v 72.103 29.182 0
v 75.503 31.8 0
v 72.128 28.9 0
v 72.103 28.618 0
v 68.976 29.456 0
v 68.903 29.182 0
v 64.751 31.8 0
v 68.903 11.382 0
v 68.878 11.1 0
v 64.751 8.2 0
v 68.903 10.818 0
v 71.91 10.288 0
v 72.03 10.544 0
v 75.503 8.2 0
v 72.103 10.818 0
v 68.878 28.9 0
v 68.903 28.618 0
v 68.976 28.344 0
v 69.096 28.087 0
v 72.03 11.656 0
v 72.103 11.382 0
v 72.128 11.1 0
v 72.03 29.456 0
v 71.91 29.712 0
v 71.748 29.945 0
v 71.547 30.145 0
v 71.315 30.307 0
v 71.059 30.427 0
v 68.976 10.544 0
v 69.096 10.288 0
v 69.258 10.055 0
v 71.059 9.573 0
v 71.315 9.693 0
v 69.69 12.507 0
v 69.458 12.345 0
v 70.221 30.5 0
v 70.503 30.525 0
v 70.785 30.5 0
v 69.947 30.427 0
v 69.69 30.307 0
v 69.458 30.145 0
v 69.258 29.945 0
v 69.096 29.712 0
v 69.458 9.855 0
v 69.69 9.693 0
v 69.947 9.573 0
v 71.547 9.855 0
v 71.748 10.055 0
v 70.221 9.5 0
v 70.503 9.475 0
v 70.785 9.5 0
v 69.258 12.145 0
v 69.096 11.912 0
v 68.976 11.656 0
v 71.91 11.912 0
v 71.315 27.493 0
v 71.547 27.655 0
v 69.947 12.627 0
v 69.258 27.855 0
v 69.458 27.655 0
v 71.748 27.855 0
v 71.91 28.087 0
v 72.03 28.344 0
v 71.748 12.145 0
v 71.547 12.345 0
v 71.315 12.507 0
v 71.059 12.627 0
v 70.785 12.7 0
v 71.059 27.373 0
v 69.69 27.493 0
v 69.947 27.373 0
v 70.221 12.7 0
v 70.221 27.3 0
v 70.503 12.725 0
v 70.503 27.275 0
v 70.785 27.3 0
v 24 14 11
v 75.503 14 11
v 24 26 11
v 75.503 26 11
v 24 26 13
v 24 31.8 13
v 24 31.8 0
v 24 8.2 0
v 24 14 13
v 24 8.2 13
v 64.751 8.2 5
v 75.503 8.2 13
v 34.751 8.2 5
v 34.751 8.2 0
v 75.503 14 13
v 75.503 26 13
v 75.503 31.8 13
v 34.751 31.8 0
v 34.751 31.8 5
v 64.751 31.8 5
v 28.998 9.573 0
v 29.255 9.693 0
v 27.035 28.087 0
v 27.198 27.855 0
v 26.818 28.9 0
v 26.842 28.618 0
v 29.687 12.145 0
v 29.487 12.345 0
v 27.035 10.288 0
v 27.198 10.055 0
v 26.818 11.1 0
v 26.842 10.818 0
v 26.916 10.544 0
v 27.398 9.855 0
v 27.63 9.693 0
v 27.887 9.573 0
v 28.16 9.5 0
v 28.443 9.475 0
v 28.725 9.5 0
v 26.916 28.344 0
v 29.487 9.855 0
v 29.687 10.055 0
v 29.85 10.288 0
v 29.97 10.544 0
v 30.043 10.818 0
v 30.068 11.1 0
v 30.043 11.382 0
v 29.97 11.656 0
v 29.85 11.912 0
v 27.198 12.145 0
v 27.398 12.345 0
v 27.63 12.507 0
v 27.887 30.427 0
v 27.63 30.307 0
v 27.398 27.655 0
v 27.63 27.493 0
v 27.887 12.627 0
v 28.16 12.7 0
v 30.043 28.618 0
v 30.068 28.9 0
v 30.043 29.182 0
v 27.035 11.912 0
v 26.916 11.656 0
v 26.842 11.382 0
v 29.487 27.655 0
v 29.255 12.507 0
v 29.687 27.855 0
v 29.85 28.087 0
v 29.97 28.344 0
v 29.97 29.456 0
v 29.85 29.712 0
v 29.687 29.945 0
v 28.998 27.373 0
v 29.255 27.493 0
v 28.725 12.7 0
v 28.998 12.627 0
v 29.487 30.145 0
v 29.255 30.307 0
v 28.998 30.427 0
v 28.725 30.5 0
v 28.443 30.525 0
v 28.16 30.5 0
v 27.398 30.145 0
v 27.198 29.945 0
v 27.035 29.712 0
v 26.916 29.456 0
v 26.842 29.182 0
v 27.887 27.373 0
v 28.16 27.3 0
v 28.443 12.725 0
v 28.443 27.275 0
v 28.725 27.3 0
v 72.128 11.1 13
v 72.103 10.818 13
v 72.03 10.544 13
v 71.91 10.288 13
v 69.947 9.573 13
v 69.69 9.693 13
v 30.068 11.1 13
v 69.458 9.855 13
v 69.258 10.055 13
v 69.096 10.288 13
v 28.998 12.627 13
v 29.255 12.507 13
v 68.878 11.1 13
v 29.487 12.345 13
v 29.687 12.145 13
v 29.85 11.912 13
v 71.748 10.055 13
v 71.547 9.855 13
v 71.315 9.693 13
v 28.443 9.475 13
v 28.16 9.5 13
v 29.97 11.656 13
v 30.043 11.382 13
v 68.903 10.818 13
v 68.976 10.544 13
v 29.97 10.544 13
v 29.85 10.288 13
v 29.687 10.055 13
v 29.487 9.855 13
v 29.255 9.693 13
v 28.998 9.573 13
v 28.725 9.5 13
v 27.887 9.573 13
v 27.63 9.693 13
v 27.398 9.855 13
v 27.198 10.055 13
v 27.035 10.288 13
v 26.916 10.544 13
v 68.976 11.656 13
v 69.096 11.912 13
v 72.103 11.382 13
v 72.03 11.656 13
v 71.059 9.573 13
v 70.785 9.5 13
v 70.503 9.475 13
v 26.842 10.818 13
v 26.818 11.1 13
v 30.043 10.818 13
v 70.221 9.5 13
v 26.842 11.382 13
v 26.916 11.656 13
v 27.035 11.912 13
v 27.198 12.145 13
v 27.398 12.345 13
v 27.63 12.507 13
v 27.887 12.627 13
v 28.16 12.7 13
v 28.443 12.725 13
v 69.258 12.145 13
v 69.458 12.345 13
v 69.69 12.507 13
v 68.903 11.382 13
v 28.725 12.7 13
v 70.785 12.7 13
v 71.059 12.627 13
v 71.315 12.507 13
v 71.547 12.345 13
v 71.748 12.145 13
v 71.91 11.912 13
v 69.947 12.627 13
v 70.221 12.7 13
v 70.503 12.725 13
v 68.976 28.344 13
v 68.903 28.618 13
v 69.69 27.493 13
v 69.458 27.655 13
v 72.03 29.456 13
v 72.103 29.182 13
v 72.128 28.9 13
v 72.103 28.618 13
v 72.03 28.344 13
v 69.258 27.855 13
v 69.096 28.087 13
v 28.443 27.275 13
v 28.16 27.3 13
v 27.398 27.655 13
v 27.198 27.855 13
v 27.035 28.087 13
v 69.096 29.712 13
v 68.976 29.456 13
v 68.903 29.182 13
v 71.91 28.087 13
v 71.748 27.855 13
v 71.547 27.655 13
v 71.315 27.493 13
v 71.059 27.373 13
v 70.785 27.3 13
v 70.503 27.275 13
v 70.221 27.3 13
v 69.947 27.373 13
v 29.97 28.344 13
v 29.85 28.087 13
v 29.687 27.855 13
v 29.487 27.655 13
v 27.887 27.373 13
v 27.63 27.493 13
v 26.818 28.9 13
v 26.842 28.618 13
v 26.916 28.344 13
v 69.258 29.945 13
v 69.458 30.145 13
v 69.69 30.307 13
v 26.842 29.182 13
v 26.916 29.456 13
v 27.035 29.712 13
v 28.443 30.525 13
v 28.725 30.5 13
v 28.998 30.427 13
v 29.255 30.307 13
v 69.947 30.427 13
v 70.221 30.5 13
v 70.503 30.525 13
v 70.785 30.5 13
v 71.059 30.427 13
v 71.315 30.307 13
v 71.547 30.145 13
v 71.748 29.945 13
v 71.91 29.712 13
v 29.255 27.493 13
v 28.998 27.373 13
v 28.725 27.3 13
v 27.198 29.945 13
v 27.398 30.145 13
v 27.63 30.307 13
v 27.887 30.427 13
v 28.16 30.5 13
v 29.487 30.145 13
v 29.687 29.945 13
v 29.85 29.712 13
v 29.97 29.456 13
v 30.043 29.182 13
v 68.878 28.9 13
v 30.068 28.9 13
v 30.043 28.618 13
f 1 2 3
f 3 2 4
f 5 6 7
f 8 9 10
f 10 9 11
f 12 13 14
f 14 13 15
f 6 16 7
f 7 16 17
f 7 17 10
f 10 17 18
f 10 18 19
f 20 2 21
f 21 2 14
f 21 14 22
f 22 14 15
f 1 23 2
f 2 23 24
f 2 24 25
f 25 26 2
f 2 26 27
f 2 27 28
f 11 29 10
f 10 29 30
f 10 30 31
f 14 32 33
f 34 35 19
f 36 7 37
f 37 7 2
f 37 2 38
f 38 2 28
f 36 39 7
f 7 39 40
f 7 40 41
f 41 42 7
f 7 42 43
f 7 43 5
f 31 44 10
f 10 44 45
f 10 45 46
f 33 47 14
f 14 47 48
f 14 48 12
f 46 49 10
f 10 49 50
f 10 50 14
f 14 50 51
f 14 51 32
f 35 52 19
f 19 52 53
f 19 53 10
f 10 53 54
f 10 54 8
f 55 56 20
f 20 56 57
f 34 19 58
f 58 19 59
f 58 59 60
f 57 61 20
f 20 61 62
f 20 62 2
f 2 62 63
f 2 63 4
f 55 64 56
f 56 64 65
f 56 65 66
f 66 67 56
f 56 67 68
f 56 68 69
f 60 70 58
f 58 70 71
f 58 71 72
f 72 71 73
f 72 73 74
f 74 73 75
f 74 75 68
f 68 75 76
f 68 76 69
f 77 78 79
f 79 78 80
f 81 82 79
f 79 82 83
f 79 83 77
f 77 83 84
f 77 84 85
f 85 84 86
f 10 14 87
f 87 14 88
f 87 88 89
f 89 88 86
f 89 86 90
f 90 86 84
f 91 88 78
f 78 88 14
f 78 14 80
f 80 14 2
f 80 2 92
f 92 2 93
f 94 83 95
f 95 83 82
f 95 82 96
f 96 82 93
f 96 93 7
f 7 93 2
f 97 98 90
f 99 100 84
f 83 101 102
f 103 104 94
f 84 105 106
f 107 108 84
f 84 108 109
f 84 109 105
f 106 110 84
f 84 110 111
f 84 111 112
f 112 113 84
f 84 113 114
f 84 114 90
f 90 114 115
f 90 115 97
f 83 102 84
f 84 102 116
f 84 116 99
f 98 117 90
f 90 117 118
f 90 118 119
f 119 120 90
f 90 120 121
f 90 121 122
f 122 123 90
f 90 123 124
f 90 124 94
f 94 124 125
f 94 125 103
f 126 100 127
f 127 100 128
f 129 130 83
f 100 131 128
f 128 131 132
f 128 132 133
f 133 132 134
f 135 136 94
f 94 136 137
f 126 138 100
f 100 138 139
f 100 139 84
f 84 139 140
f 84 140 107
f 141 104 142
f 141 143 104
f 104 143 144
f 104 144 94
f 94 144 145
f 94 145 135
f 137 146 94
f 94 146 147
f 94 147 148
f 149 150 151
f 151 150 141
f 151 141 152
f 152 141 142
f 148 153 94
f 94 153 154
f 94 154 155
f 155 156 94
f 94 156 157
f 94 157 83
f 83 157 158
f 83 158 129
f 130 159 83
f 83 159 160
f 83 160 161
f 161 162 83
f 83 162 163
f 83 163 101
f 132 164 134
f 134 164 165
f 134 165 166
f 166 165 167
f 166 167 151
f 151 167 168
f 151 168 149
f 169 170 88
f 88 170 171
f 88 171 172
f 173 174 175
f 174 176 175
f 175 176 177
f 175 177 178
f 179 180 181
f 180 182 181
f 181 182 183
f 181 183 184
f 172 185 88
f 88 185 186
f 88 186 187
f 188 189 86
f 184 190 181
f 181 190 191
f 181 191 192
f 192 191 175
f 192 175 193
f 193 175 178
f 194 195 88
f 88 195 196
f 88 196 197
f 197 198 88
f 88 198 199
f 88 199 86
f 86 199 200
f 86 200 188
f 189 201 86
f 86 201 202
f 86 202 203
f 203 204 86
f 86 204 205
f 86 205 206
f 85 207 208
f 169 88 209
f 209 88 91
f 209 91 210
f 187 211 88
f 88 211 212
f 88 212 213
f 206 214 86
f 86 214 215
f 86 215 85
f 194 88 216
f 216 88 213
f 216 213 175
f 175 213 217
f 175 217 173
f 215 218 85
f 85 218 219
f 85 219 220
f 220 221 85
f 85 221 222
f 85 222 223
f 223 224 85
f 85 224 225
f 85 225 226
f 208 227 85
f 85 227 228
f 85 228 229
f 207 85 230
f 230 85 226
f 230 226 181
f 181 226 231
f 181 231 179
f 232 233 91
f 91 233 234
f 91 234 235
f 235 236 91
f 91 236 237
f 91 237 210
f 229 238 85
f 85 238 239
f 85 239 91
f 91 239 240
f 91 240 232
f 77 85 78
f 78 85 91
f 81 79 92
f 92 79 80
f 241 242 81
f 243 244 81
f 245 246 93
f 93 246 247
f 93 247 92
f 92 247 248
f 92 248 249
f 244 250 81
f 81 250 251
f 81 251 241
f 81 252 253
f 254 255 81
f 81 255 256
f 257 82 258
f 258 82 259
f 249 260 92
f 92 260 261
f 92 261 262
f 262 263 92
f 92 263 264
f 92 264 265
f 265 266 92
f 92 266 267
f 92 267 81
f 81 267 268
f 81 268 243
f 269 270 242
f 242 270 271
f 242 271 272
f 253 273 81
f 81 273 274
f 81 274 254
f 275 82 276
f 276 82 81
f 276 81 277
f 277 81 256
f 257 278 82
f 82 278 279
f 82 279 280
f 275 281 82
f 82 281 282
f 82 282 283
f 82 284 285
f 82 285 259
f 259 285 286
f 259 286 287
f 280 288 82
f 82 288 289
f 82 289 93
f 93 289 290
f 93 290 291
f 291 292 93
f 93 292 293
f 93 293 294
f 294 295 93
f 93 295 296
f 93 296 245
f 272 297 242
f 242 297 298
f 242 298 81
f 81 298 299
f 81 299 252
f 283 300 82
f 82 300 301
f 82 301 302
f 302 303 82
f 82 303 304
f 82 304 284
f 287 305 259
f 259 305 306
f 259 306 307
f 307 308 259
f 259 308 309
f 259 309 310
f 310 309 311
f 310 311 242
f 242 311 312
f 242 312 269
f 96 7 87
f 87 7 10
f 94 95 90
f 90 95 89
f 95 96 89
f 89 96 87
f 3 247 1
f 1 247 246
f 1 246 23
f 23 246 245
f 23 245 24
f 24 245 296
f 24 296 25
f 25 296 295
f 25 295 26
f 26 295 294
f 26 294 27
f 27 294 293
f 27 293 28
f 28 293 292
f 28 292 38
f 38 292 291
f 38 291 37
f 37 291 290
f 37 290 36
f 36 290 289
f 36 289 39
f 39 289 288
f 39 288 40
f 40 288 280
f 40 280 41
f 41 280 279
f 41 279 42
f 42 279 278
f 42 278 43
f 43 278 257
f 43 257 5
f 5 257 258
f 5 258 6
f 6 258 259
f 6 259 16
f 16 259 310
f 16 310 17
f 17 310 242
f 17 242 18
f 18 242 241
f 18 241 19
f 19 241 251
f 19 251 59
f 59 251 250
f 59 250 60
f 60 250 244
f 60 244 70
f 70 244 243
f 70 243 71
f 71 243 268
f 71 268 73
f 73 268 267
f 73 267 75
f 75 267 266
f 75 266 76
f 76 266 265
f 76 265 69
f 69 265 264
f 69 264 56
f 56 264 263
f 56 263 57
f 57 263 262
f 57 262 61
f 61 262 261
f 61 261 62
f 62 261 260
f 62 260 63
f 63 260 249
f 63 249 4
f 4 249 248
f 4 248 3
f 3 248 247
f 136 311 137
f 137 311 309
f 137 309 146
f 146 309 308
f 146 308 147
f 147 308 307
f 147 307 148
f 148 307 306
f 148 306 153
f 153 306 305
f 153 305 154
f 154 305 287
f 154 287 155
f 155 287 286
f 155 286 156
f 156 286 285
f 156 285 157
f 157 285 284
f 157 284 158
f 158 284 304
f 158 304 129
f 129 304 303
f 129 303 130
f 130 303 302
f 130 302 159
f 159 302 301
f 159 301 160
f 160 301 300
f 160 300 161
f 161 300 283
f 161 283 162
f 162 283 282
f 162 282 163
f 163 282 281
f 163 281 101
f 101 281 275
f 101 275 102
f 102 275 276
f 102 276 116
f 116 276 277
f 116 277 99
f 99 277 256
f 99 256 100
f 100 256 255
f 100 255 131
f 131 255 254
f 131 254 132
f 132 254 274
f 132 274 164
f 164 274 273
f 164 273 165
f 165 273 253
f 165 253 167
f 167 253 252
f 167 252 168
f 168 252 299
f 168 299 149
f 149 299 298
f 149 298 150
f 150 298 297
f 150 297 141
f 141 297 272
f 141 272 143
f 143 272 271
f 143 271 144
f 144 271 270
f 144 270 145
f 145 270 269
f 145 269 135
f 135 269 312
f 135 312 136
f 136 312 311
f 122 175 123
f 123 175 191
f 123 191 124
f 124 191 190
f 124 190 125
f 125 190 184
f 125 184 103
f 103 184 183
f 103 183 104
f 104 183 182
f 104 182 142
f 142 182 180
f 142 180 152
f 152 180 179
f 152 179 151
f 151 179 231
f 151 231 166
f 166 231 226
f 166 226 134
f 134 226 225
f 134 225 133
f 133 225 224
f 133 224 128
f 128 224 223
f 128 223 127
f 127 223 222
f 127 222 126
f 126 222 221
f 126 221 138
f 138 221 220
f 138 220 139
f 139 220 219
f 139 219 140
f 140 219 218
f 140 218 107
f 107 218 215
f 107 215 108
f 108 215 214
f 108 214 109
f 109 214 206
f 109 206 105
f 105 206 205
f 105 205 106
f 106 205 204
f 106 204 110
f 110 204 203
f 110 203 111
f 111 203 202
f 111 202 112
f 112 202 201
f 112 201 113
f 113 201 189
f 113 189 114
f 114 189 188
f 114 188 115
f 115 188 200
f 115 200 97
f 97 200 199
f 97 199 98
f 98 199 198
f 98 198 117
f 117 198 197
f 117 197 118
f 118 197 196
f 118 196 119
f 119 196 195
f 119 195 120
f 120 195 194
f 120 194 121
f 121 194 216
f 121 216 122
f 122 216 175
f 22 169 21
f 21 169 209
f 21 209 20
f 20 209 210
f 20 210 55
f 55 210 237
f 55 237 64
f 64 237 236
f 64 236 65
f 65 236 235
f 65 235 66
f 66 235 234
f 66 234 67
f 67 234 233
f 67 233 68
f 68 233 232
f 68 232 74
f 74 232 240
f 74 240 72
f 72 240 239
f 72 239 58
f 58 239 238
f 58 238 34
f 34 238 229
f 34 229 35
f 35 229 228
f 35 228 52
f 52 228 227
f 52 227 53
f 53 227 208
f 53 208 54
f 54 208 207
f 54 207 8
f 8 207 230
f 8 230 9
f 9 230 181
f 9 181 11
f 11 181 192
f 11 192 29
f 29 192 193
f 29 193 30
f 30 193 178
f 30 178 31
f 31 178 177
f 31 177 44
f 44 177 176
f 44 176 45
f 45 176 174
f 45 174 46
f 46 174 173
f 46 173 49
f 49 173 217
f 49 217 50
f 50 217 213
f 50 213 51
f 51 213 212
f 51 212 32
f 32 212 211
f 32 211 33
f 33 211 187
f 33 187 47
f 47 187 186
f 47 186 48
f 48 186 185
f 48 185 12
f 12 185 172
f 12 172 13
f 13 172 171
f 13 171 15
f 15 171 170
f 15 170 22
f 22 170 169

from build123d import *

# Parameters (mm, degrees)
CROQUIS2_W              = 51.502836605
CROQUIS2_H              = 23.6
SALIENTE_EXTRUIR1_DEPTH = 11
CROQUIS4_W              = 2
CROQUIS4_H              = 5.8
SALIENTE_EXTRUIR2_DEPTH = 51.502837
CORTAR_EXTRUIR1_START   = -23.6
CORTAR_EXTRUIR1_DEPTH   = 23.6
CORTAR_EXTRUIR2_START   = -13
CROQUIS6_R              = 1.625
CORTAR_EXTRUIR2_DEPTH   = 13


with BuildPart() as part:
    # Croquis2 → Saliente-Extruir1 (new body)
    with BuildSketch(Plane.XY):
        with Locations((49.751418302, 20)):
            Rectangle(CROQUIS2_W, CROQUIS2_H)
    extrude(amount=SALIENTE_EXTRUIR1_DEPTH)

    # Croquis4 → Saliente-Extruir2 (add)
    with BuildSketch(Plane(origin=(75.502836605, 0, 0), x_dir=(0, 0, -1), z_dir=(1, 0, 0))):
        with Locations((-12, 11.1)):
            Rectangle(CROQUIS4_W, CROQUIS4_H)
        with Locations((-12, 28.9)):
            Rectangle(CROQUIS4_W, CROQUIS4_H)
    extrude(amount=-SALIENTE_EXTRUIR2_DEPTH)

    # Croquis5 → Cortar-Extruir1 (cut)
    with BuildSketch(Plane.XZ.offset(-8.2).offset(CORTAR_EXTRUIR1_START)):
        Polygon((49.751418302, 0), (34.751418302, 0), (34.751418302, 5), (49.751418302, 5), (64.751418302, 5), (64.751418302, 0), align=None)
    extrude(amount=CORTAR_EXTRUIR1_DEPTH, mode=Mode.SUBTRACT)

    # Croquis6 → Cortar-Extruir2 (cut)
    with BuildSketch(Plane.XY.offset(13).offset(CORTAR_EXTRUIR2_START)):
        with Locations((28.442619987, 11.1)):
            Circle(CROQUIS6_R)
        with Locations((28.442619987, 28.9)):
            Circle(CROQUIS6_R)
        with Locations((70.502836605, 11.1)):
            Circle(CROQUIS6_R)
        with Locations((70.502836605, 28.9)):
            Circle(CROQUIS6_R)
    extrude(amount=CORTAR_EXTRUIR2_DEPTH, mode=Mode.SUBTRACT)


solid = part.part
